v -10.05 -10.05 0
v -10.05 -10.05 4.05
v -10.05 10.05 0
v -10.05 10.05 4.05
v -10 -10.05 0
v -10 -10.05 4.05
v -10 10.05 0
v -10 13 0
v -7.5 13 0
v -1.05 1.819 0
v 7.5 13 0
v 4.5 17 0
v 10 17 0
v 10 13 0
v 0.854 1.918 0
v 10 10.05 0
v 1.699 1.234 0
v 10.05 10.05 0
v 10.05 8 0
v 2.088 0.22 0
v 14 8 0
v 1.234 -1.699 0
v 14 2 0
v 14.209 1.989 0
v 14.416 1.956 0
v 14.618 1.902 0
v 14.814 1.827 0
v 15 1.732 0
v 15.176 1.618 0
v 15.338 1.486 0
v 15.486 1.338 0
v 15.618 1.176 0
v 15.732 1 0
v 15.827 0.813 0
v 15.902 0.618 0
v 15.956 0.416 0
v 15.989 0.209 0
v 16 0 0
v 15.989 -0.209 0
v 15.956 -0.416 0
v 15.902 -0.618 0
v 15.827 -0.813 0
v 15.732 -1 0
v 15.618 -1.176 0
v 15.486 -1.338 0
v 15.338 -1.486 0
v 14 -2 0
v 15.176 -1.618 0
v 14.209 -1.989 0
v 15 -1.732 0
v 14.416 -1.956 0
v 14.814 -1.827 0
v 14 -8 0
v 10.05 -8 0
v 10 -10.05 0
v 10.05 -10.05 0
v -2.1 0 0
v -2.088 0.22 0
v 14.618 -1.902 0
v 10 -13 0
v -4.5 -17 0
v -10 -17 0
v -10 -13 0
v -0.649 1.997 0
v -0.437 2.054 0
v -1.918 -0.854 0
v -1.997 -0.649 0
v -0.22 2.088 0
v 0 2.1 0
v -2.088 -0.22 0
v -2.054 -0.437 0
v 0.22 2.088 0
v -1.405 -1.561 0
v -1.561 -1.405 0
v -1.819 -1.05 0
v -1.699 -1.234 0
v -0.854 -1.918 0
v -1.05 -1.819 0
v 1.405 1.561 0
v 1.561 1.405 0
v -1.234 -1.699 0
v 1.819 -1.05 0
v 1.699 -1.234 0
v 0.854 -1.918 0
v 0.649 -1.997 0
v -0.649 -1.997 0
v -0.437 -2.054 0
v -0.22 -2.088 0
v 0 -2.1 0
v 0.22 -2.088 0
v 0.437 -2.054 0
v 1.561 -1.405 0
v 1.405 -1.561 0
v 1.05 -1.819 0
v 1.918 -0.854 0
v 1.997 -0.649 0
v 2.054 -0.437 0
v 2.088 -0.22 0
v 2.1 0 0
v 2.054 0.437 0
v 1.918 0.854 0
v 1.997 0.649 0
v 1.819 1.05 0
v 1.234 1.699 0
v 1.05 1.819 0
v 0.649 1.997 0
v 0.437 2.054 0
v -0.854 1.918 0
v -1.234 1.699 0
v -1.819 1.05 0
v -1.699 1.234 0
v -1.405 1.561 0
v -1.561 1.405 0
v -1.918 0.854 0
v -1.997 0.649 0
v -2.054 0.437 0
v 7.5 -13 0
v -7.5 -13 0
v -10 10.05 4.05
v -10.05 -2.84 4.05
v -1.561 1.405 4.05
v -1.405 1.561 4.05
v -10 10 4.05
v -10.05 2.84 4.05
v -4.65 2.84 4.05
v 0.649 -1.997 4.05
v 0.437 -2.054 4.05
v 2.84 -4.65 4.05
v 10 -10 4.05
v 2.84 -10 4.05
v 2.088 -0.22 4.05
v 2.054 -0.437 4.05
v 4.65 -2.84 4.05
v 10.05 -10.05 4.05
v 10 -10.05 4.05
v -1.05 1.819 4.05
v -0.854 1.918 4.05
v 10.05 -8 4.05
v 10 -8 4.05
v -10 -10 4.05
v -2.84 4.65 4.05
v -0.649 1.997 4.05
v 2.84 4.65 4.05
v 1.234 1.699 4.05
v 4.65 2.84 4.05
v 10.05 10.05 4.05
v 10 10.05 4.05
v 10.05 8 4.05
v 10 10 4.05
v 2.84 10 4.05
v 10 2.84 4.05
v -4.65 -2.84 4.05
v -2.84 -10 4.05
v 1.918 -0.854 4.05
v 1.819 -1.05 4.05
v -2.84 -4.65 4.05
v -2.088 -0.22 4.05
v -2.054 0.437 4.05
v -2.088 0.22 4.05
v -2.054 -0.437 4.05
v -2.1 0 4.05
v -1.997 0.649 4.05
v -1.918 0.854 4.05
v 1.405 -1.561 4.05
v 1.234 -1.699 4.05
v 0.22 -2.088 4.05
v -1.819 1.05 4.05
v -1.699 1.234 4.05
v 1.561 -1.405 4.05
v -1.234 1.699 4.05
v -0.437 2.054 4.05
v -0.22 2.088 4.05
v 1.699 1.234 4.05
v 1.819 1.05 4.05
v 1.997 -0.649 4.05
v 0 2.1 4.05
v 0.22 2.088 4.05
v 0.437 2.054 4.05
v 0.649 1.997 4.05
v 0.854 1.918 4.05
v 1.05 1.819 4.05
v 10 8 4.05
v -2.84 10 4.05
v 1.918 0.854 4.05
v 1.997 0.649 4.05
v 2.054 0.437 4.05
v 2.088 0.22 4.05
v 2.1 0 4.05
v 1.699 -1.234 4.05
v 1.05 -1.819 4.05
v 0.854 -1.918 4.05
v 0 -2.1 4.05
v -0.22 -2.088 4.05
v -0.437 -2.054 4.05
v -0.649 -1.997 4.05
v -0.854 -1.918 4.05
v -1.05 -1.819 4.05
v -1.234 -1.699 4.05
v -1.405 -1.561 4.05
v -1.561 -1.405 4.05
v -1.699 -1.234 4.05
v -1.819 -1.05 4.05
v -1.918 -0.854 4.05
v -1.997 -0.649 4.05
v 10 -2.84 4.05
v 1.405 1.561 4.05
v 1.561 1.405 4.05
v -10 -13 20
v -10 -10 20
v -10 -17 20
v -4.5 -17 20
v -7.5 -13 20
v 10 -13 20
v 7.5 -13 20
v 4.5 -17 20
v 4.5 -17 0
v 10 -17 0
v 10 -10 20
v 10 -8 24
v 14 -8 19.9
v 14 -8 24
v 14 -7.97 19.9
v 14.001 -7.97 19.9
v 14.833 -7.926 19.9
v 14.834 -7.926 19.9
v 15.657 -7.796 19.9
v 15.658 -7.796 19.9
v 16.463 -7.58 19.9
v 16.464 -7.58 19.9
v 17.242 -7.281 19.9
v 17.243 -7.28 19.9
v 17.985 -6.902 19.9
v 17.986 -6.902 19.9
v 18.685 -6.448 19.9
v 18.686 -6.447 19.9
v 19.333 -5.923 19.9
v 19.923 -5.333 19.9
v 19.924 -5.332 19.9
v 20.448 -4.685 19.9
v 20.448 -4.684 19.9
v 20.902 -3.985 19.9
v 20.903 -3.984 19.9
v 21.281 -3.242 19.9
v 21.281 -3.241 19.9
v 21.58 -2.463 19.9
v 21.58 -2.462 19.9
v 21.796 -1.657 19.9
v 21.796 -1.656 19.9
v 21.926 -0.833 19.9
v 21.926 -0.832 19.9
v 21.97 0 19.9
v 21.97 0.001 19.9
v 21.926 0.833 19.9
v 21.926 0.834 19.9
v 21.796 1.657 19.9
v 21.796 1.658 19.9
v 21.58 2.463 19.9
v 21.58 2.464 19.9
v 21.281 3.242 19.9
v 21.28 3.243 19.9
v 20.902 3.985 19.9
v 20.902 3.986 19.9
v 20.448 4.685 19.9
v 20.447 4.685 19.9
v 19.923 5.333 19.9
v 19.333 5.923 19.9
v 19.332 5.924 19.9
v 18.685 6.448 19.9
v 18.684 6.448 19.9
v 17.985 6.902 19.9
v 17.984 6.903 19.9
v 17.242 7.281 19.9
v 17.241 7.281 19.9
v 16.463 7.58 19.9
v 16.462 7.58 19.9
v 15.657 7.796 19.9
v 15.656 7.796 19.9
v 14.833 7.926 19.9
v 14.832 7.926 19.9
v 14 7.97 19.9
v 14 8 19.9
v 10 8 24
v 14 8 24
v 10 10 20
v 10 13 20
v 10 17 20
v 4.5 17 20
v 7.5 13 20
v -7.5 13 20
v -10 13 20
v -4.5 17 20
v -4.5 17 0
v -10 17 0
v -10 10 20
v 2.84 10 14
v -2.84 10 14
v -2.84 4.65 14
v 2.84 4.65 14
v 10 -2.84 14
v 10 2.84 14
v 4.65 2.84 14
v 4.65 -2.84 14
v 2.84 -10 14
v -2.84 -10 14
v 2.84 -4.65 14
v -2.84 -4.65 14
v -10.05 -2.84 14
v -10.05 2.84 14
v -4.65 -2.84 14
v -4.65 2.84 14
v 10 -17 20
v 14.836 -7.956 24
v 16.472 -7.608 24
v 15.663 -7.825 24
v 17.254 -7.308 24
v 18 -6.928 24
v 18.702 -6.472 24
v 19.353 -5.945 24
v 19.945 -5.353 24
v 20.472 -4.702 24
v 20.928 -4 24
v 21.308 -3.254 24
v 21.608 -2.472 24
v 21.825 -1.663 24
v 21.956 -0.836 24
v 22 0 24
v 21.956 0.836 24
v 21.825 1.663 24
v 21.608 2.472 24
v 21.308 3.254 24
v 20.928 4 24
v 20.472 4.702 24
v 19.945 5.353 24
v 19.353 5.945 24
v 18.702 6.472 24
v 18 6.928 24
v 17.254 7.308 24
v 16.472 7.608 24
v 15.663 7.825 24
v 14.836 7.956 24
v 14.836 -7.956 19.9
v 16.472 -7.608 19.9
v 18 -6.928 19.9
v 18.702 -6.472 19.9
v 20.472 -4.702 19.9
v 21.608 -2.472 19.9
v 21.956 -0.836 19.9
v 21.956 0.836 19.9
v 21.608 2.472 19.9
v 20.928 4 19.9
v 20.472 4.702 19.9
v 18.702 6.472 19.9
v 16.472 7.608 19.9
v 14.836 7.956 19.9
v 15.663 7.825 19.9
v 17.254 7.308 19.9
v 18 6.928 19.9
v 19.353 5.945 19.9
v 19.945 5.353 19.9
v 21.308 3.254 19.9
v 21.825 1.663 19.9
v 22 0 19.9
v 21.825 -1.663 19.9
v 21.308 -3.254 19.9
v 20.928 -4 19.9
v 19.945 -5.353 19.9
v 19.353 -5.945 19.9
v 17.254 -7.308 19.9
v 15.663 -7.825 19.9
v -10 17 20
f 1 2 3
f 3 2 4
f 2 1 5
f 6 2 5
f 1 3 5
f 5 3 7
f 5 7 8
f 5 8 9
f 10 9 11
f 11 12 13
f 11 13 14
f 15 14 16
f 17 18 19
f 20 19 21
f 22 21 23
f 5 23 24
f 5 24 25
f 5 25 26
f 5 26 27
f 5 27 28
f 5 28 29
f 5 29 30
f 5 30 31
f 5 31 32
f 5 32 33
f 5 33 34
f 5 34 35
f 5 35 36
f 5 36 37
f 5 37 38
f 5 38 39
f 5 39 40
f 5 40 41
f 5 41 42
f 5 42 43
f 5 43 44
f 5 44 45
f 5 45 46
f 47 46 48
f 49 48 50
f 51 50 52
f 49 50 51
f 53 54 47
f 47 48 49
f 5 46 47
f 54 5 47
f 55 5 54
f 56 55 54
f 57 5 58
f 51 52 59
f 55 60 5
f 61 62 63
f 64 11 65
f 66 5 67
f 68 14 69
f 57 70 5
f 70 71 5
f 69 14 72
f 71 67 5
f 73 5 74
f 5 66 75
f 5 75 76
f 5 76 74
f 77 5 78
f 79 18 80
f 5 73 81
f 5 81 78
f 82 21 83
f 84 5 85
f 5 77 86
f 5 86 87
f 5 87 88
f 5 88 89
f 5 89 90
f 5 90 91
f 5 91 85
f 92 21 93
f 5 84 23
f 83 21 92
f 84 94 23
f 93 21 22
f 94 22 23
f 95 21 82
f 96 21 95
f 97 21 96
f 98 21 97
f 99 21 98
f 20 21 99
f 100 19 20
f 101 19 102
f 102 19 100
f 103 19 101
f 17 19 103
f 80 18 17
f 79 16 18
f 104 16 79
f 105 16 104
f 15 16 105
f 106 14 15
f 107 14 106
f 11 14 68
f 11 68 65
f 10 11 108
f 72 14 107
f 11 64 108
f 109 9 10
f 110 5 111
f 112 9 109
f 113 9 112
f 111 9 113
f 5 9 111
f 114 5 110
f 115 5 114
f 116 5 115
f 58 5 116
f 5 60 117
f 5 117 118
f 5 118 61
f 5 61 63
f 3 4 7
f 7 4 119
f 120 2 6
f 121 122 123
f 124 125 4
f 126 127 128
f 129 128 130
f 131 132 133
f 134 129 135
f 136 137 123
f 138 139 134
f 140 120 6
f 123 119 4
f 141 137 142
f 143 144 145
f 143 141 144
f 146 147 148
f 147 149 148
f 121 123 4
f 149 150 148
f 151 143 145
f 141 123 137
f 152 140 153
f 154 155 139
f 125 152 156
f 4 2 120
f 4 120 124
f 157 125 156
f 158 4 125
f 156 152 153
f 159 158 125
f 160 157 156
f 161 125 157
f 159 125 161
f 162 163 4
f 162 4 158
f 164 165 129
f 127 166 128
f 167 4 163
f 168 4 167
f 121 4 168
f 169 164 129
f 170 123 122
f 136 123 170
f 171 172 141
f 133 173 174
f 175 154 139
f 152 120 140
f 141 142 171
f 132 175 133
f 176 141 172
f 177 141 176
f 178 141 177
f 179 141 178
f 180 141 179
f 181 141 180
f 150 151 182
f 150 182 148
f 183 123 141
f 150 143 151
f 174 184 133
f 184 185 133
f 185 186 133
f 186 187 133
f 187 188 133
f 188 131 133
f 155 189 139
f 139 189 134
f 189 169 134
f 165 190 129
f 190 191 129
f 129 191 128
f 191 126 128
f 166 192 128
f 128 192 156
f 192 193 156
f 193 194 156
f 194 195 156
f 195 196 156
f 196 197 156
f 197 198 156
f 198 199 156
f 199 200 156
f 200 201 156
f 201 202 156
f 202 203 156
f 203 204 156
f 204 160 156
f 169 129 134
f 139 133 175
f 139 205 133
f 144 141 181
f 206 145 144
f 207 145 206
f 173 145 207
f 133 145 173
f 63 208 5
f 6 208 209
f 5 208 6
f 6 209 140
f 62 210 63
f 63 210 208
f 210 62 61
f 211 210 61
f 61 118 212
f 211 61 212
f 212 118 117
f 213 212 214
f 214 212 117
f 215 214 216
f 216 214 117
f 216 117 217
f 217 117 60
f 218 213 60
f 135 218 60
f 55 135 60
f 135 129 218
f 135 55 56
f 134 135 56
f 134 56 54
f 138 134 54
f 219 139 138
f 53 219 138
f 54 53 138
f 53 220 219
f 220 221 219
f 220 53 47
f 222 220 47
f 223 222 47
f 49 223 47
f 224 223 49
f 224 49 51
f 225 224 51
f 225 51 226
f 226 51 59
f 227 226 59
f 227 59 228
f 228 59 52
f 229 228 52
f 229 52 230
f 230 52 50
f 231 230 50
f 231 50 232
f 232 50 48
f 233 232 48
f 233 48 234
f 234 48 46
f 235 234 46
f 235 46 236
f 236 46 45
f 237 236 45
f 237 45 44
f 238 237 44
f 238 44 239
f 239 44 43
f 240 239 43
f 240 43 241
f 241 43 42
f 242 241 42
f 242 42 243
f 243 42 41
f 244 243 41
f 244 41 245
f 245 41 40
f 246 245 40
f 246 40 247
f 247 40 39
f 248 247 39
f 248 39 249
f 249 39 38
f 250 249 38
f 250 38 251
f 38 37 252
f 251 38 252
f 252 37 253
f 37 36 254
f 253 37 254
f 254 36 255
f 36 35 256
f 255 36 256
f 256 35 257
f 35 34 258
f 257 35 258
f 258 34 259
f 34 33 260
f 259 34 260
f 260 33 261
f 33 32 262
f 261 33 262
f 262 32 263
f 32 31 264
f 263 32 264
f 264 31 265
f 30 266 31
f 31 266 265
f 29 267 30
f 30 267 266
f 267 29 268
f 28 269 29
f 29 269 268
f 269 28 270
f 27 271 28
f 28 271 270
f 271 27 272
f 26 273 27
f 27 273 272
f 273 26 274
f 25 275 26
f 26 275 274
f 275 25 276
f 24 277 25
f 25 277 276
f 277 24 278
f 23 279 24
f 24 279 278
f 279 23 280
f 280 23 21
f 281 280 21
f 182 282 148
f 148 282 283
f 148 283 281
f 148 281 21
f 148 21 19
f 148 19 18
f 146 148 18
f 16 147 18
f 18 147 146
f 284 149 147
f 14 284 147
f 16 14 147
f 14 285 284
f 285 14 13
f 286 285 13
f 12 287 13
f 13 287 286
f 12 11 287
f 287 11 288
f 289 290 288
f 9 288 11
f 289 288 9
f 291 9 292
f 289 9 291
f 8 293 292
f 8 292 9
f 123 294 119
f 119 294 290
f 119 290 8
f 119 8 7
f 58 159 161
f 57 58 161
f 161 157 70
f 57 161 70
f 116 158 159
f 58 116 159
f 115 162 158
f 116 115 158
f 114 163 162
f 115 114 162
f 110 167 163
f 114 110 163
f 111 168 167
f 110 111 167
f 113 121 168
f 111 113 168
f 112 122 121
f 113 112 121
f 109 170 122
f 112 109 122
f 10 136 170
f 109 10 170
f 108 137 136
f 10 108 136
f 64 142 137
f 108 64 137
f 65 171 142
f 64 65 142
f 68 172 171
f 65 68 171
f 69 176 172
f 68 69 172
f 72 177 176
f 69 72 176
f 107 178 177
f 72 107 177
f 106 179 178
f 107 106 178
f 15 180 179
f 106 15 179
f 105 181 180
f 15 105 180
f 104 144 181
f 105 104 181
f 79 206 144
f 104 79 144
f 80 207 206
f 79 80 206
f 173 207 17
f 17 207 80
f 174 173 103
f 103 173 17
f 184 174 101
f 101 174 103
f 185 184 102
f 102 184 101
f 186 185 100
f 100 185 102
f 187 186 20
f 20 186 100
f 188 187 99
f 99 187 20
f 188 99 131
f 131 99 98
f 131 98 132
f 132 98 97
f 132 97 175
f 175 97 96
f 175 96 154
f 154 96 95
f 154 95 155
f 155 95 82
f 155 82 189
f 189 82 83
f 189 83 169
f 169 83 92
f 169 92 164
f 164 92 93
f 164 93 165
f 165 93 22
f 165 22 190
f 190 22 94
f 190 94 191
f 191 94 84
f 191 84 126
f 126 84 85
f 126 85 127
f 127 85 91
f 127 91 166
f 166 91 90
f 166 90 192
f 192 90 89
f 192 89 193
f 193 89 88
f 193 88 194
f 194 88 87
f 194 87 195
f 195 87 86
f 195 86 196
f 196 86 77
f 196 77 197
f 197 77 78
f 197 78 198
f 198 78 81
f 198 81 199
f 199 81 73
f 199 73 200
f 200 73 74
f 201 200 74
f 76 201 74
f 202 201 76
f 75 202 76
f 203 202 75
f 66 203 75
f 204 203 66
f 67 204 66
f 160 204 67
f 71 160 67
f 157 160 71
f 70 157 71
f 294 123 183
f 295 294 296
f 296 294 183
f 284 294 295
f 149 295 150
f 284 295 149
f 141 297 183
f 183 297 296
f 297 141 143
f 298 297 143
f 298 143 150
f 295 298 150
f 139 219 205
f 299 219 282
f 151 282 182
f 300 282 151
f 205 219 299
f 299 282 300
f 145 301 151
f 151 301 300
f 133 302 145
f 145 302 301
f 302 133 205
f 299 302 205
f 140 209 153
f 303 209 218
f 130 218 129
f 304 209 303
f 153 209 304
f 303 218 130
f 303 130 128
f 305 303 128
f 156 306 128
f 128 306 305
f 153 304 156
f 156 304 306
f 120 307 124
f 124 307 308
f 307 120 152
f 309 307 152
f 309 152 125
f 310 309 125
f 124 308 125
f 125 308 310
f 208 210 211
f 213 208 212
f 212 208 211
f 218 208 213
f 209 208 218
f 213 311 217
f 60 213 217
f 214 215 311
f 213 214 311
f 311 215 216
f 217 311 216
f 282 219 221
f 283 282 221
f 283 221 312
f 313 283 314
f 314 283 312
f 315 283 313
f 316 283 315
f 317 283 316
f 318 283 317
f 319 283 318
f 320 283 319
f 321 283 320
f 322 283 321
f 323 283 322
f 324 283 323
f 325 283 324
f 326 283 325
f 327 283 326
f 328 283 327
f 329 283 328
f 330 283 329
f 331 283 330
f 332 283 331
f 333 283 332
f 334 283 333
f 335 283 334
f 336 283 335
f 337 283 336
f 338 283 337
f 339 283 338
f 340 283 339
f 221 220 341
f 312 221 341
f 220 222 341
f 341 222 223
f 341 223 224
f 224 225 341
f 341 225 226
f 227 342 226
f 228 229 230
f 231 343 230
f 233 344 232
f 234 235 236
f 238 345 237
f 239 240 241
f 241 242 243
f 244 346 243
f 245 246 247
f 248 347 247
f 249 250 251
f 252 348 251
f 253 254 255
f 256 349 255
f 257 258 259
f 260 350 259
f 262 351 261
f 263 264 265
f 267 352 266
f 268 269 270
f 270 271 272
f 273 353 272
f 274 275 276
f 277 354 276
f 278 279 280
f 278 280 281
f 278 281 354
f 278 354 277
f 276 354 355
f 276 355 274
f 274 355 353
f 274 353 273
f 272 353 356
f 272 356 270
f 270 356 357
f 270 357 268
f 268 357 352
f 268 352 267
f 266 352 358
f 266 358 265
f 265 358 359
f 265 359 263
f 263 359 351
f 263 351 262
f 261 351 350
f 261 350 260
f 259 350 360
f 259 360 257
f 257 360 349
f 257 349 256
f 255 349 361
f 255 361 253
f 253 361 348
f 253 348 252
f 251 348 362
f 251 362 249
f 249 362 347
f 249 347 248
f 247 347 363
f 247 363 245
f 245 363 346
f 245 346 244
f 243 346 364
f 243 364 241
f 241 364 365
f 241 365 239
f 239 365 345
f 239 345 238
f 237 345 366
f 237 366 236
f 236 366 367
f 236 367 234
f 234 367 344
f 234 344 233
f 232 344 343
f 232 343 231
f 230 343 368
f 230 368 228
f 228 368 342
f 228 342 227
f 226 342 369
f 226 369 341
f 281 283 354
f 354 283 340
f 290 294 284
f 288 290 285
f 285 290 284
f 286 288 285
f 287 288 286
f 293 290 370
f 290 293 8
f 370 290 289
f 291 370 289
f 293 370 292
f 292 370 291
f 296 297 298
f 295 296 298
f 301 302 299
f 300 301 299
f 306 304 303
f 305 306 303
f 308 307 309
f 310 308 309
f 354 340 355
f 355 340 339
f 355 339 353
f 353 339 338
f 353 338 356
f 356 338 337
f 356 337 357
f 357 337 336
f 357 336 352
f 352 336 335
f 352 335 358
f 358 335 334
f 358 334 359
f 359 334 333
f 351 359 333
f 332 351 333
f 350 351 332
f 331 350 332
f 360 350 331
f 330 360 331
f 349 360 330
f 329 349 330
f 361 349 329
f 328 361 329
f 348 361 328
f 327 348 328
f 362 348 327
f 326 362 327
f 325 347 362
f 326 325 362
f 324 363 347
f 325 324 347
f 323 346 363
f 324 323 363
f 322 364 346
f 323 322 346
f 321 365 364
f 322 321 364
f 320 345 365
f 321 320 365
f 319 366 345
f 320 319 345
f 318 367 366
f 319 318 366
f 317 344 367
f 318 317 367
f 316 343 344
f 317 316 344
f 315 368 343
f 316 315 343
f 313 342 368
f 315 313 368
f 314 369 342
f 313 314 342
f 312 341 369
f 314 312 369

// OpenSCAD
module base() {
  difference() {
    translate([-10.05,-10.05,0]) cube([20.1,20.1,4.05]);
    translate([0,0,-0.5]) cylinder(5,2.1,2.1,$fn=60);
  }
}

module slotplug() {
slottop=10;
  translate([-10,-10,0])
  union(){
    //translate([1.9,10-slottop/2,4]) cube([1.50, slottop, 10]);
    translate([-0.05,10-5.68/2,4]) cube([5.4, 5.68, 10]);
  }
}

module slider() {
  union() {
    translate([-10,-13.00006,0]) cube([20,3,20]);

    translate([-10,-13,0]) rotate([0,0,270])
    polyhedron(
      points=[[0,0,0],[0,2.5,0],[4,5.5,0],[4,0,0], 
             [0,0,20],[0,2.5,20],[4,5.5,20],[4,0,20]],

      faces=[[3,2,1,0],[4,5,6,7],[7,6,2,3],
             [4,7,3,0],[1,2,6,5],[0,1,5,4]]
    );

    translate([10,-13,20]) rotate([0,180,90])
    polyhedron(
      points=[[0,0,0],[0,2.5,0],[4,5.5,0],[4,0,0], 
             [0,0,20],[0,2.5,20],[4,5.5,20],[4,0,20]],

      faces=[[3,2,1,0],[4,5,6,7],[7,6,2,3],
             [4,7,3,0],[1,2,6,5],[0,1,5,4]]
    );
  }
}


module endstop() {
  translate([10,-8,0]) cube([4,16,24]);

  union() {
    difference() {
      translate([14,0,0]) cylinder(20,2,8,$fn=60);
      translate([4.5,-8.5,-0.5]) cube([9,17,21]);
    }
  
    difference() {
      translate([14,0,19.9]) cylinder(4.1,8,8,$fn=60);
      translate([4.5,-8.5,19.5]) cube([9,17,5]);
    }
  }
}


union() {
  base();
  slotplug();
  rotate([0,0,90]) slotplug();
  rotate([0,0,180]) slotplug();
  rotate([0,0,270]) slotplug();

  endstop();

  slider();
  rotate([0,0,180]) slider();
}
